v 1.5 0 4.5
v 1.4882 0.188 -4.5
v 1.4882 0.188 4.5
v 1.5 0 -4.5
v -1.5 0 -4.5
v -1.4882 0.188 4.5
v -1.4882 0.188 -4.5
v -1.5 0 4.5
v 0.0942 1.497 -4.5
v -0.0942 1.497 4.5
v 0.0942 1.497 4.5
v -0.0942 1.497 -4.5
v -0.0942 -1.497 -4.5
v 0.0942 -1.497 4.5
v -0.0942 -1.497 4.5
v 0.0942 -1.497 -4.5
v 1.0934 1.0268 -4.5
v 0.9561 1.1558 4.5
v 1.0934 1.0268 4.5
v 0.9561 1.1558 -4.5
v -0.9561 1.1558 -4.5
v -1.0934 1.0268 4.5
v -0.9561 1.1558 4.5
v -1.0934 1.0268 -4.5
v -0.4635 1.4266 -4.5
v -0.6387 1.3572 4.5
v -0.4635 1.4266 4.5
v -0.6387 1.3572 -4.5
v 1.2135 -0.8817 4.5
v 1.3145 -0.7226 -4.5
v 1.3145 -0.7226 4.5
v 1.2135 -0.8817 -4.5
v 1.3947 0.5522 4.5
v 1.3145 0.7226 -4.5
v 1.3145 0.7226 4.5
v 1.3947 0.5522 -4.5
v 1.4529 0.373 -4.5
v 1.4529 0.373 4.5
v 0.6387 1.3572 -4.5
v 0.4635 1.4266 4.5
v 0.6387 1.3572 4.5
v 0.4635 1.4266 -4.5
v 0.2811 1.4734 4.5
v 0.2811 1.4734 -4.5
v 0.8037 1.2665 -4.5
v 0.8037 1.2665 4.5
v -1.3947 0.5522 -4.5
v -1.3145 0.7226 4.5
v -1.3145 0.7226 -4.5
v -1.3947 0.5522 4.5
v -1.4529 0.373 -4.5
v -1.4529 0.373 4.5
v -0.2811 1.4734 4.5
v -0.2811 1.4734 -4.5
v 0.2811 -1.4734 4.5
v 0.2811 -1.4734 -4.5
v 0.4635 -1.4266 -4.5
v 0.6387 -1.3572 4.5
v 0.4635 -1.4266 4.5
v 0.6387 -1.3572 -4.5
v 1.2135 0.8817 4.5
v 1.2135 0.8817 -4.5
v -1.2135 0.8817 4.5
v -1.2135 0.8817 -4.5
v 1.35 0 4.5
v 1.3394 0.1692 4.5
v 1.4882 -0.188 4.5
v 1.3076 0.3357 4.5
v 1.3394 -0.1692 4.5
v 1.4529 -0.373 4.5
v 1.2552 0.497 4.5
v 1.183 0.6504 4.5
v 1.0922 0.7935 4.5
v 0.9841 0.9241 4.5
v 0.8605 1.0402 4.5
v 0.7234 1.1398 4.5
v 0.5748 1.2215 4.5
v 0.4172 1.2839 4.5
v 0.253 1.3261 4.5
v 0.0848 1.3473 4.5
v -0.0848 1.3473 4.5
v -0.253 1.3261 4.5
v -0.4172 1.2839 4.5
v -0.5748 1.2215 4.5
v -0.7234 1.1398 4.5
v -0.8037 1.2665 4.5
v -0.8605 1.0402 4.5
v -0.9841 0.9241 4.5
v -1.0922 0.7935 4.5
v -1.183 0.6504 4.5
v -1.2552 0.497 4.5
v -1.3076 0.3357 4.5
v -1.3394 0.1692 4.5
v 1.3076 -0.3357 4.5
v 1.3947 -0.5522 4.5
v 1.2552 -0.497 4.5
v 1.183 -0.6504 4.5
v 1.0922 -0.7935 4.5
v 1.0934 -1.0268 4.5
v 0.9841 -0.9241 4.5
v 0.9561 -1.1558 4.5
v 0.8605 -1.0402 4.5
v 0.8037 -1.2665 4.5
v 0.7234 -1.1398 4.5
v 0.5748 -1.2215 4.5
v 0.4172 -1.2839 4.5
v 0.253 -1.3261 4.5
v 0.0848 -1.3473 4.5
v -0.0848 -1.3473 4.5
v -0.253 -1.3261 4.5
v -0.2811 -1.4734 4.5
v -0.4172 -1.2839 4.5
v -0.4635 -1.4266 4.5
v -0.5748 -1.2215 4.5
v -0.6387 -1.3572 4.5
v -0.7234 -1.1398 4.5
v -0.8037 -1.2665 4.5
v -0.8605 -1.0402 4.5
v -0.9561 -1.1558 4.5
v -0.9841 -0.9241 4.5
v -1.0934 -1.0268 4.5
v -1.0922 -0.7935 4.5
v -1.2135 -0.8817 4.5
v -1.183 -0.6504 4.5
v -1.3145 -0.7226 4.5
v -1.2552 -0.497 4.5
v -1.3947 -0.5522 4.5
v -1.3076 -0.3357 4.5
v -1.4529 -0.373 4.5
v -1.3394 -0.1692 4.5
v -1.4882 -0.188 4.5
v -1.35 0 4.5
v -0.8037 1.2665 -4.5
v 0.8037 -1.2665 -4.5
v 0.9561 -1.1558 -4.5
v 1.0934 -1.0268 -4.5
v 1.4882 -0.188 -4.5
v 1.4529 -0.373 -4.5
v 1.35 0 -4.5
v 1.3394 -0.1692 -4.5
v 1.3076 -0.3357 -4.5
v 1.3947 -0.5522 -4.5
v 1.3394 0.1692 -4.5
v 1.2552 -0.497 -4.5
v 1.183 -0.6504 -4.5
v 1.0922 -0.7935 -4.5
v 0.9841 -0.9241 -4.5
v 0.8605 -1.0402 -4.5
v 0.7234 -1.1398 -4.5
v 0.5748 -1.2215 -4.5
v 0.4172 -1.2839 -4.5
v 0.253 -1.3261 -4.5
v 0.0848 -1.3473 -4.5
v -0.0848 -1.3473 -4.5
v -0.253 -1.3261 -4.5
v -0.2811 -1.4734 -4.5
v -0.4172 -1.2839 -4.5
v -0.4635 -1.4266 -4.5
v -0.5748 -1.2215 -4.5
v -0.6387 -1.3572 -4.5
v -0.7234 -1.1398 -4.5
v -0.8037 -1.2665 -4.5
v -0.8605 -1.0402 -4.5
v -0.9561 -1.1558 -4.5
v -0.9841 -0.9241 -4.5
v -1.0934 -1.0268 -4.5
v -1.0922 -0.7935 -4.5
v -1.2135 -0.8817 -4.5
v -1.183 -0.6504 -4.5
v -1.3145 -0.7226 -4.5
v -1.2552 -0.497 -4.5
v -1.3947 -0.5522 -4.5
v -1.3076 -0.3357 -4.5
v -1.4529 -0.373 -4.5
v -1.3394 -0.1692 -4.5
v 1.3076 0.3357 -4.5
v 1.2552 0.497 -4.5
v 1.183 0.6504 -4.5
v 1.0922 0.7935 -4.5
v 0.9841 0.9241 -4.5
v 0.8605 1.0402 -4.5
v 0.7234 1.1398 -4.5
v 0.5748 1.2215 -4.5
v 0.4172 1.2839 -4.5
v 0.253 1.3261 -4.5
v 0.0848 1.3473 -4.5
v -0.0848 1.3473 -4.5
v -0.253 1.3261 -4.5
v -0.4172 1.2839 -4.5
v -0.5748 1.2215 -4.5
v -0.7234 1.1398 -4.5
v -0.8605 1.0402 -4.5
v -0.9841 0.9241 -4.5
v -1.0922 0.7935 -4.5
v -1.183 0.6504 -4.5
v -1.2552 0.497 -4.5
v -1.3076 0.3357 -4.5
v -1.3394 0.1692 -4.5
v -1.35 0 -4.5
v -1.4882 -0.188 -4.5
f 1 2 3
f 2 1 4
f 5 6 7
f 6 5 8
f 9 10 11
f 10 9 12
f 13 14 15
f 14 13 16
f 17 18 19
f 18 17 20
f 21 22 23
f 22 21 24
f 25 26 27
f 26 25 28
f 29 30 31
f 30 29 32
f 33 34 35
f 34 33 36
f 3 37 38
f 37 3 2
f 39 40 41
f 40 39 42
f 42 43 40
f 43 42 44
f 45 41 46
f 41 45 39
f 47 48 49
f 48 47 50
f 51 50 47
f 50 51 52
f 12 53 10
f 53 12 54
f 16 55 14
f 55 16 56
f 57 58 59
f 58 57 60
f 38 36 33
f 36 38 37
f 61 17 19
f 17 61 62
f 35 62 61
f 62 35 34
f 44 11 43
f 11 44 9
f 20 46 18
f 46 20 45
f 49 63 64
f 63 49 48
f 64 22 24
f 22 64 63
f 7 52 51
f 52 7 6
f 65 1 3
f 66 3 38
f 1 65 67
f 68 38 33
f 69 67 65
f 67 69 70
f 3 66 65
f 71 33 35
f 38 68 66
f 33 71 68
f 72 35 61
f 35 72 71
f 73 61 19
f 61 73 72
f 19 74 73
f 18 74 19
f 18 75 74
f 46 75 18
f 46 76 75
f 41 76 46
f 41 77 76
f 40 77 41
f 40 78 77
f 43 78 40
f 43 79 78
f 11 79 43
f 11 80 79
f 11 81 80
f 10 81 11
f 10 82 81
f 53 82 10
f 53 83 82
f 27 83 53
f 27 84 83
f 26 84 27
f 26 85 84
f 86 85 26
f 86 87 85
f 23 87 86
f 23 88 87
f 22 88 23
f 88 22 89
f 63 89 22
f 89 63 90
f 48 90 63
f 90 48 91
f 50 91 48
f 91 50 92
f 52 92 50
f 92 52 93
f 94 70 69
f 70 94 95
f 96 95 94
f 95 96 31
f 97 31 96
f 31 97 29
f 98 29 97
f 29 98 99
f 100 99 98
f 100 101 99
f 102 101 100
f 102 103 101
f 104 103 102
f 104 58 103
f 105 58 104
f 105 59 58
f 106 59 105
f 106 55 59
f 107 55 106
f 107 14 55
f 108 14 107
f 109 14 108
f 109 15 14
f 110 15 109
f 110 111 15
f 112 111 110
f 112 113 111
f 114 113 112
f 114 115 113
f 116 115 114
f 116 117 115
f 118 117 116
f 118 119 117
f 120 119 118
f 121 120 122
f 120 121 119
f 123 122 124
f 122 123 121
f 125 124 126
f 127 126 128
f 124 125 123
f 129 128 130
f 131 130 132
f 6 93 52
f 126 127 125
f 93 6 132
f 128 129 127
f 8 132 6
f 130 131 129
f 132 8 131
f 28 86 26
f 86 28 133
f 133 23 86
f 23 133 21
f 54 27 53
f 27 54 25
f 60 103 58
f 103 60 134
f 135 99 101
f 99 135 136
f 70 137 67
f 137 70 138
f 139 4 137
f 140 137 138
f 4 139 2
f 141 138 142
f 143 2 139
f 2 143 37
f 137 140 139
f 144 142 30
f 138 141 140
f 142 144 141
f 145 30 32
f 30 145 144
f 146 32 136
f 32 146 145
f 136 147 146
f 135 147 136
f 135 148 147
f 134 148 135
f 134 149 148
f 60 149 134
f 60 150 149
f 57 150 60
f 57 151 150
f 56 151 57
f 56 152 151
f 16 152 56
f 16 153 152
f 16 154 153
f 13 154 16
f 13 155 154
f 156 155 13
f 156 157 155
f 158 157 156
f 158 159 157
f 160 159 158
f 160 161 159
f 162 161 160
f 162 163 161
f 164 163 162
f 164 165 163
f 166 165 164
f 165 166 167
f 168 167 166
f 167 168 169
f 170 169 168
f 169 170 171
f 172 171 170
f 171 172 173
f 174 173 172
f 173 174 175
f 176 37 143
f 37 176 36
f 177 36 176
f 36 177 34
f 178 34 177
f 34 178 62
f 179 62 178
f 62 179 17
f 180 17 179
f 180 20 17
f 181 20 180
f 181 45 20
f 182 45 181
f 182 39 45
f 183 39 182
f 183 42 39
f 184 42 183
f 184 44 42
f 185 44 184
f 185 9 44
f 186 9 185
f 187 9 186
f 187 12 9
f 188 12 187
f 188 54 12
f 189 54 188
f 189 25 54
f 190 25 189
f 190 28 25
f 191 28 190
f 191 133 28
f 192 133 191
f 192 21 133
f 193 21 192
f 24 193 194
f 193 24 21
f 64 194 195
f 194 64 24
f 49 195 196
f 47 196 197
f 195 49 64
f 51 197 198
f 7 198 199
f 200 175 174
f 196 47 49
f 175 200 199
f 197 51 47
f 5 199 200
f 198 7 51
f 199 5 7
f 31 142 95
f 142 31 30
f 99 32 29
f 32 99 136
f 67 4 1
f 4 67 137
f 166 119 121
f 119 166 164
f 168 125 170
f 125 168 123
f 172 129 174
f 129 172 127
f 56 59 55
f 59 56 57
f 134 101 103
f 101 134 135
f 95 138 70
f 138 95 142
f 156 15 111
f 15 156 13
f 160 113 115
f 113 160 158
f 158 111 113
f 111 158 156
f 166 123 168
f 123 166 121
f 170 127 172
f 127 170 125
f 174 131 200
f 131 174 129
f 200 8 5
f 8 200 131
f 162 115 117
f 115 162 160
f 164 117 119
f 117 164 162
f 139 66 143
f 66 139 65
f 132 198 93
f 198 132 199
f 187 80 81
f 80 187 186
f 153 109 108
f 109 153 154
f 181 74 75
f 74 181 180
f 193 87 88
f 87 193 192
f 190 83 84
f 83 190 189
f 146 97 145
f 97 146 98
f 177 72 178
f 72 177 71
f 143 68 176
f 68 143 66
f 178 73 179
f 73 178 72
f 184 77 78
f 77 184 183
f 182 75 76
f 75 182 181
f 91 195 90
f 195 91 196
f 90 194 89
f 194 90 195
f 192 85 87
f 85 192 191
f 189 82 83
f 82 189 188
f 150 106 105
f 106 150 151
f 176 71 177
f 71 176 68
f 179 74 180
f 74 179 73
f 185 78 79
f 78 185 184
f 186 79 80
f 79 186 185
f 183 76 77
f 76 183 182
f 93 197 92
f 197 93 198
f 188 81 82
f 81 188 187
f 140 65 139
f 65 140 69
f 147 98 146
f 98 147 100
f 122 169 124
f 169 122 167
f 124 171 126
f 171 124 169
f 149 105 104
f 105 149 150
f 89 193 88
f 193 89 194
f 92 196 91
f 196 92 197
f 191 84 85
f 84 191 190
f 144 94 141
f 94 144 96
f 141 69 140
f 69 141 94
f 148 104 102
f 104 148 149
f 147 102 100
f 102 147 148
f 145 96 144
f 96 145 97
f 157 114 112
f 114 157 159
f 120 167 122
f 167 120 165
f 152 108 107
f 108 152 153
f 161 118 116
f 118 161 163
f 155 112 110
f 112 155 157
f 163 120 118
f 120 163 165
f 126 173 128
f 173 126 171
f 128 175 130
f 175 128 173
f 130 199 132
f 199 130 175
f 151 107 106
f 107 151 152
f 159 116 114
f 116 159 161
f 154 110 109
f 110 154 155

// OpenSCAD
$fn = 50;


difference() {
	union() {
		translate(v = [0, 0, -4.5000000000]) {
			cylinder(h = 9, r = 1.5000000000);
		}
	}
	union() {
		translate(v = [0, 0, -100.0000000000]) {
			cylinder(h = 200, r = 1.3500000000);
		}
	}
}
